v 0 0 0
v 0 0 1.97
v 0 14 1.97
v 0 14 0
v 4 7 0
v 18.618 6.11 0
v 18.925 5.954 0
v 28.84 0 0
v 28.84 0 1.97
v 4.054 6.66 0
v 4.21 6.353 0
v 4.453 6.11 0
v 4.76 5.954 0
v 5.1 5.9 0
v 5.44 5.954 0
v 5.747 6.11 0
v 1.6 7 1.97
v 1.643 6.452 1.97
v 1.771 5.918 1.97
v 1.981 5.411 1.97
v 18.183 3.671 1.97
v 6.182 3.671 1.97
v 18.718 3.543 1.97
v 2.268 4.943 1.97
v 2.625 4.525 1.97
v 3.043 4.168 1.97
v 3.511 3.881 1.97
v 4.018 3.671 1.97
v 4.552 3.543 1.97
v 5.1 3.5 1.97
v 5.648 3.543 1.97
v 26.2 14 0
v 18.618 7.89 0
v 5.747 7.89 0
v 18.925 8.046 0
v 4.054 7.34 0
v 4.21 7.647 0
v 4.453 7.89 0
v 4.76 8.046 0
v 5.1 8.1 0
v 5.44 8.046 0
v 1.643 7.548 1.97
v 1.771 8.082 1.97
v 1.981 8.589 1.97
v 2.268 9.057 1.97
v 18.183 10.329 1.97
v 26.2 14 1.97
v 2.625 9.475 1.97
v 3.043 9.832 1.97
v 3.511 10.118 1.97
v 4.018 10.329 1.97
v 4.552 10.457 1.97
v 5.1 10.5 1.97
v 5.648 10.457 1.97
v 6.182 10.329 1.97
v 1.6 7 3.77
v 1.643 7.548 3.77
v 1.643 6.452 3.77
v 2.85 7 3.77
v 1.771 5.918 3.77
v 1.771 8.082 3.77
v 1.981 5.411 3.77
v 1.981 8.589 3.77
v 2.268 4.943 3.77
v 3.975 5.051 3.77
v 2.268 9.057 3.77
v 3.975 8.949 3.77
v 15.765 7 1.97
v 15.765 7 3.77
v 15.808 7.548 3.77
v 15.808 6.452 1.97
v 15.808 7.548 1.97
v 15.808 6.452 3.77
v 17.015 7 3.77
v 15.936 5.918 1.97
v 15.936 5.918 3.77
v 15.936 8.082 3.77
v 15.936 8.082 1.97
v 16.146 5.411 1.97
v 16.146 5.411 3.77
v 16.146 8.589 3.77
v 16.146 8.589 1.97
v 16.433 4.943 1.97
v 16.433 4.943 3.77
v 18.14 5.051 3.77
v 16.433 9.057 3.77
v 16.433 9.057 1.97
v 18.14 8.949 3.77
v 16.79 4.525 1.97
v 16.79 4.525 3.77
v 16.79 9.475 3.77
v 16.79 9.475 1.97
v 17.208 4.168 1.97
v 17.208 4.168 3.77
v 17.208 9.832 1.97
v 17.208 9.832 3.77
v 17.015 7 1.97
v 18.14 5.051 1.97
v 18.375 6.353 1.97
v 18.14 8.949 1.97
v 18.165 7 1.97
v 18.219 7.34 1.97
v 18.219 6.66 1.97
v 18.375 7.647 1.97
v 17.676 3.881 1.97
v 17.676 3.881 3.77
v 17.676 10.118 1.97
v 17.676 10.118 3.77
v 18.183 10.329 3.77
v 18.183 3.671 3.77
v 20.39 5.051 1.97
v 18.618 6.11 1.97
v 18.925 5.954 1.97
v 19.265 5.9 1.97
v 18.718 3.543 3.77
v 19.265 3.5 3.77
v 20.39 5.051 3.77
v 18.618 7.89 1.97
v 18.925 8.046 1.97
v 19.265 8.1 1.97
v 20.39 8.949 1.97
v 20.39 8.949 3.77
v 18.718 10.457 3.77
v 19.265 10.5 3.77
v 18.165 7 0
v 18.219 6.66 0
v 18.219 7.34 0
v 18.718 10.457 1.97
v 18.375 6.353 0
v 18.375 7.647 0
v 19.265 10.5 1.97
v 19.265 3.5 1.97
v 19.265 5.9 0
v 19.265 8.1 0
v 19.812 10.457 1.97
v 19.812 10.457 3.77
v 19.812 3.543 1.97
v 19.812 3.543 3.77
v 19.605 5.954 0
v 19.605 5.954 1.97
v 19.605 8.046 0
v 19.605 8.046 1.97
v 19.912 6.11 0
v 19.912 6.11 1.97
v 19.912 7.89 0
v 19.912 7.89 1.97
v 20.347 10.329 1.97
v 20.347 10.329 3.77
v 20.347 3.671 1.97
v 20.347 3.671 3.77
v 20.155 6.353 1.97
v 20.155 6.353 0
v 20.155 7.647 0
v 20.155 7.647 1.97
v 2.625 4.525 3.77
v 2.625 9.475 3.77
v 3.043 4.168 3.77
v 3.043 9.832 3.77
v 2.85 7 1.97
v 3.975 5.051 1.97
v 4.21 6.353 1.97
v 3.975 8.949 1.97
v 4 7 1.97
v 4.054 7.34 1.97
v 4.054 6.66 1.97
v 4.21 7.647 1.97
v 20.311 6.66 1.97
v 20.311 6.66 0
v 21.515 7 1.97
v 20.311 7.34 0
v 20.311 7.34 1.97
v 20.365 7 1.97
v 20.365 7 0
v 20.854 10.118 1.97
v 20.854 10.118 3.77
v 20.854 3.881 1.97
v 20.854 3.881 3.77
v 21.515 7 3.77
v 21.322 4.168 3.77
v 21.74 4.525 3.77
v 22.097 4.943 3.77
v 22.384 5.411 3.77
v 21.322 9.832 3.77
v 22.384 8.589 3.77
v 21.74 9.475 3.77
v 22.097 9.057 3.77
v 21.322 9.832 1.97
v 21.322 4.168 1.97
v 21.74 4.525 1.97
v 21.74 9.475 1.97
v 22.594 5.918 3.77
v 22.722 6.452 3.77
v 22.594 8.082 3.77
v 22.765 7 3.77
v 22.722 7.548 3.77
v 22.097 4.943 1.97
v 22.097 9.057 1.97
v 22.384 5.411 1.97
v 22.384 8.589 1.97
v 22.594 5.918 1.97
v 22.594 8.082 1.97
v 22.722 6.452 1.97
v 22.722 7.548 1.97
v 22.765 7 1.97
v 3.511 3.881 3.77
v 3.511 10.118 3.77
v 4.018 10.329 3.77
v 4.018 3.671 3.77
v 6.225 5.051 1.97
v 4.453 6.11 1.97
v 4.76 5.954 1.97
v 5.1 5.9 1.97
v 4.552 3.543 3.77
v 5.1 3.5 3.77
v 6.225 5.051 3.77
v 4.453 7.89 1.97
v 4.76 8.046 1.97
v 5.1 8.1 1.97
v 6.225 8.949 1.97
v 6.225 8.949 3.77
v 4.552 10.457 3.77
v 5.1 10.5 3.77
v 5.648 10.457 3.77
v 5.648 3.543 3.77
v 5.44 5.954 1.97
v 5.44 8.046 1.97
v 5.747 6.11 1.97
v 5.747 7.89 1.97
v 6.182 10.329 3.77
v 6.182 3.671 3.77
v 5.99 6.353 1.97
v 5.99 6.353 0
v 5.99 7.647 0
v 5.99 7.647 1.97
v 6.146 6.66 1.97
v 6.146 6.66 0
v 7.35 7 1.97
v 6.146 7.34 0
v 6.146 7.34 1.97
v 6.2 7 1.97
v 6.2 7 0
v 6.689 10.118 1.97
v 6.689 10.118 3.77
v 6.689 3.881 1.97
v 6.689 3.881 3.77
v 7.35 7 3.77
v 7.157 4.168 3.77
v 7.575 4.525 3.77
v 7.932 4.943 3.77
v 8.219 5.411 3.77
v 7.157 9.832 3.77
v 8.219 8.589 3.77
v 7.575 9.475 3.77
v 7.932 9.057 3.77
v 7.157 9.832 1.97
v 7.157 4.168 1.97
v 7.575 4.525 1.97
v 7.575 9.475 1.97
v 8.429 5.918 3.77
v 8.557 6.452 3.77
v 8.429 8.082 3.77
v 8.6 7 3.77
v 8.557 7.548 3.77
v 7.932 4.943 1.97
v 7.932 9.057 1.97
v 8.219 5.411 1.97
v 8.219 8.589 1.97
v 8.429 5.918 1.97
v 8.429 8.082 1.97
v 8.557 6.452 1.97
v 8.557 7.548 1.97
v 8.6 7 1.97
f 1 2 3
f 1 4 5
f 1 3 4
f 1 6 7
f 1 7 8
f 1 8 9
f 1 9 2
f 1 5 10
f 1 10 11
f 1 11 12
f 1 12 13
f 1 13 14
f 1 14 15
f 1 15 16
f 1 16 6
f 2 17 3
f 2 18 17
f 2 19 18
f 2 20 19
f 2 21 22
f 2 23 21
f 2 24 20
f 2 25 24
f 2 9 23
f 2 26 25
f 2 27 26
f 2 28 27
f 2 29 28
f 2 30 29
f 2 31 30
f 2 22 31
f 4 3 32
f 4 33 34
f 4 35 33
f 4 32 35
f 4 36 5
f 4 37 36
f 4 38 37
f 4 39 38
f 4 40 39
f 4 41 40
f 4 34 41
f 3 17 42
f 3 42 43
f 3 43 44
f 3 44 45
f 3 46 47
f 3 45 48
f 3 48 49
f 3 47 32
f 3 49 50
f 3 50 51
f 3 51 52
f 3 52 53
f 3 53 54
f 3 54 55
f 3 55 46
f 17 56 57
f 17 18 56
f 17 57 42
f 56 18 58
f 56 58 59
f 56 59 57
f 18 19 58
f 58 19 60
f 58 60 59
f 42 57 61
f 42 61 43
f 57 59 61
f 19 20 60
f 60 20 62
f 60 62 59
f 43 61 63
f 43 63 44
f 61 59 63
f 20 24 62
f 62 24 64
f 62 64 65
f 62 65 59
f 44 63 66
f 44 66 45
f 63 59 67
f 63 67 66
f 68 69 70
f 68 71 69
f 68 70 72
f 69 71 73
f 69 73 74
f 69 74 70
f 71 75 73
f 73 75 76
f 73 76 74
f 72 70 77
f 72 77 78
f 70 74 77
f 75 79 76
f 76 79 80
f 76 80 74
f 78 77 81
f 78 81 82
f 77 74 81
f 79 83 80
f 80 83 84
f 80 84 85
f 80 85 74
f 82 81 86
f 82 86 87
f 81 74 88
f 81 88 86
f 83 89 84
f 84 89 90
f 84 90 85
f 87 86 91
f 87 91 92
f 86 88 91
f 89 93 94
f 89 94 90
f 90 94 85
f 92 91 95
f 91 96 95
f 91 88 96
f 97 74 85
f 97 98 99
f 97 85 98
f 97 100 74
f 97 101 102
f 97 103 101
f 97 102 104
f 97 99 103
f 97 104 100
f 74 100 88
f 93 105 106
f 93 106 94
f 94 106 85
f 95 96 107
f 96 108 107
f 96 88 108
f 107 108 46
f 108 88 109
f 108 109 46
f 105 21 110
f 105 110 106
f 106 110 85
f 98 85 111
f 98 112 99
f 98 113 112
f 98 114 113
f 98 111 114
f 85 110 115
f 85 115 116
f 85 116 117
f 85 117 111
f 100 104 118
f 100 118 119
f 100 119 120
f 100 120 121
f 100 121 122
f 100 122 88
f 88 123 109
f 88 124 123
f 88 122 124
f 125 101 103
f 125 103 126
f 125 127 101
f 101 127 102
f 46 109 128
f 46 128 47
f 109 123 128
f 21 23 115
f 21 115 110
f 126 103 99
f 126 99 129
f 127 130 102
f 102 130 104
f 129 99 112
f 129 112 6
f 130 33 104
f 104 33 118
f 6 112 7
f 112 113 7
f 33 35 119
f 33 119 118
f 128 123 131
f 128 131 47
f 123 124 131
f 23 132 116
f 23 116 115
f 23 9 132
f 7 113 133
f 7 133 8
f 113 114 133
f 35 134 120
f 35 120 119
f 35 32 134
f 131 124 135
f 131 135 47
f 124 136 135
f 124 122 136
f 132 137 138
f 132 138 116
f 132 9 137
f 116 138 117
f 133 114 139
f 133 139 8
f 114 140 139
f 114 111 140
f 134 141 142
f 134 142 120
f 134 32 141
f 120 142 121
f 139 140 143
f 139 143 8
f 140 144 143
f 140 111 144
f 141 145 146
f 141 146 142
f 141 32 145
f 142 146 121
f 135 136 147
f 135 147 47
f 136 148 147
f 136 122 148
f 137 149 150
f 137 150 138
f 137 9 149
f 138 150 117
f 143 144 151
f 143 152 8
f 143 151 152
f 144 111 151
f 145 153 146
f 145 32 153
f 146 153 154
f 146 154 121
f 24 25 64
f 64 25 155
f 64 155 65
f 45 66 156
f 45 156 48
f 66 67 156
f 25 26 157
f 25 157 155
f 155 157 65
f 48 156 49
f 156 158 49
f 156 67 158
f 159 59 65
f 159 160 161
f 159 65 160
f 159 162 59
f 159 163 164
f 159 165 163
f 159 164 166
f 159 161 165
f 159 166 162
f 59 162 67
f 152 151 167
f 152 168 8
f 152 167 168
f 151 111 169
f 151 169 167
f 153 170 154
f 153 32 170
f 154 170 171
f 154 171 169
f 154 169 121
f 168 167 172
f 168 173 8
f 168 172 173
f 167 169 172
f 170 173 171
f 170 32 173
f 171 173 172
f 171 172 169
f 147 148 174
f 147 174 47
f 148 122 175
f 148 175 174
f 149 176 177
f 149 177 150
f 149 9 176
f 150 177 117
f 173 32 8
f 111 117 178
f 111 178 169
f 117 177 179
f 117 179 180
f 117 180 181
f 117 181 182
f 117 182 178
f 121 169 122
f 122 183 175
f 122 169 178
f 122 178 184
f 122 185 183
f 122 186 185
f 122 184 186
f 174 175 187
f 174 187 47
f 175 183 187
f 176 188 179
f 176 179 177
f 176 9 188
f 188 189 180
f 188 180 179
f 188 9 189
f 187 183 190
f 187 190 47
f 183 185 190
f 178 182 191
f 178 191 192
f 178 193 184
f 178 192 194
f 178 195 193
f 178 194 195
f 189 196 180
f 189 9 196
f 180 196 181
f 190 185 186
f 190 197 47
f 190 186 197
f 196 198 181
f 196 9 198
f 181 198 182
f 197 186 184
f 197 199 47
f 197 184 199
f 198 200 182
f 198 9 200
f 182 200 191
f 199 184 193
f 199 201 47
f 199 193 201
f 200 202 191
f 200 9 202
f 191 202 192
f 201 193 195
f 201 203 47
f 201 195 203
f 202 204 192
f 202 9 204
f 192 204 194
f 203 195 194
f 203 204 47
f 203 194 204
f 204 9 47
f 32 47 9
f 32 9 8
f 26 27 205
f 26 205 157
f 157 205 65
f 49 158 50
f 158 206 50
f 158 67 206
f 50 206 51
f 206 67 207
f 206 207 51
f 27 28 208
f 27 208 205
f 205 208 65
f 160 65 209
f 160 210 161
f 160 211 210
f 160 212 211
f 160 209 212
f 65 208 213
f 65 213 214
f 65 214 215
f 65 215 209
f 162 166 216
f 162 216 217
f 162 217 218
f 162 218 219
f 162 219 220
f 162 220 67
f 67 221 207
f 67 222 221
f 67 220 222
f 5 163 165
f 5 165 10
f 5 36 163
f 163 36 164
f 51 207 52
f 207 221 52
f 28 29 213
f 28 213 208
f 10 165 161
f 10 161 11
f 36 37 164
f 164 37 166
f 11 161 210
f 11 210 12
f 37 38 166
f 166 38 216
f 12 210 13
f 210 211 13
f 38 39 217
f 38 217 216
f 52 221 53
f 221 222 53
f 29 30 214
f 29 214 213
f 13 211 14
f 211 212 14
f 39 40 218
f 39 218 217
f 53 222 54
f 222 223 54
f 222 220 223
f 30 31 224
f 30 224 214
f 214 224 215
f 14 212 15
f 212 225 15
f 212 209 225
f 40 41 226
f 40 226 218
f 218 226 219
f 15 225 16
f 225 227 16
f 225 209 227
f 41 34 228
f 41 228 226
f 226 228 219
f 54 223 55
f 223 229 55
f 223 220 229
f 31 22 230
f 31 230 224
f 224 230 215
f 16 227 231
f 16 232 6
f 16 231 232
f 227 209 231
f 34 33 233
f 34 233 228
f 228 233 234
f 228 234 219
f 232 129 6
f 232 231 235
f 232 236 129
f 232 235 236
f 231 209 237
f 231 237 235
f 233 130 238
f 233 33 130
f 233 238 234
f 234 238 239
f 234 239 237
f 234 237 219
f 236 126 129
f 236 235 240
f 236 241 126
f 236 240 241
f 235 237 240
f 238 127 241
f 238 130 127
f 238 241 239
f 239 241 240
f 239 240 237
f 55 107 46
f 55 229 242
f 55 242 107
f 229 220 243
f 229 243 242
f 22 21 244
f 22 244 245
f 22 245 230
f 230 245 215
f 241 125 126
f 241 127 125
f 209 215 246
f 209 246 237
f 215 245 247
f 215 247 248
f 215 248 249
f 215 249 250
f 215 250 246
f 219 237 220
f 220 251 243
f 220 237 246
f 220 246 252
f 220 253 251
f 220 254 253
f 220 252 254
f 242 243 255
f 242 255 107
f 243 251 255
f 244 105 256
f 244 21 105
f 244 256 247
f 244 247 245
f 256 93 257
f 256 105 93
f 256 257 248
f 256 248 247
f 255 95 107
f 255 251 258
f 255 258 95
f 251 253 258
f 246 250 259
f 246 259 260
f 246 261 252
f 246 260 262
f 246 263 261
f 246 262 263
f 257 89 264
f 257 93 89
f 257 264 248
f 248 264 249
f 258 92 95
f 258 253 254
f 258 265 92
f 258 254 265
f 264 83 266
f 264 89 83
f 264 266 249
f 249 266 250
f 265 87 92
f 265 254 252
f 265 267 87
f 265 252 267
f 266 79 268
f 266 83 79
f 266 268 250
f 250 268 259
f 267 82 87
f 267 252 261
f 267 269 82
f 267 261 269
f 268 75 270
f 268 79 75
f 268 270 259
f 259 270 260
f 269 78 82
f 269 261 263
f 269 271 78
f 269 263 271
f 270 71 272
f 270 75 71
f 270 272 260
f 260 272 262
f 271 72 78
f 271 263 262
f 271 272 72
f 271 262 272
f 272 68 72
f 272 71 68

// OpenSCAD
// file: ../parameters.scad
global_clearance = 0.5;


//Main tube diameter - hole [mm]
main_tube_outer_diameter = 25.4;
main_tube_inner_diameter = 23.05;

// Nastavení parametrů rotoru

gliding_aggle = 14;         // tenhle úhel by se zřejmě v budoucnu měl počítat z požadované klouzavosti.

rotor_blade_AOA = 1.5;      // nastavení úhlu náběhu rotorového listu
rotor_blade_length = 970;   // délka rotorového listu
rotor_blade_depth = 50;     // hloubka rotorového listu
rotor_height = 180;         // výška otočného kloubu rotoru nad hlavní trubkou vírníku (odhad)
rotor_blades_count = 2;
rotor_delta_angle = 12;


rotor_head_width =  21.4;    //Rozměr 1 v nákresu
pilon_wall_thickness = 4.2;  // Rozměr 2 v nákresu
horizontal_screw_distance = 14.5;   // Rozměr 4 v nákresu
vertical_screw_distance = 12;       // rozměr 5 v nkresu

rotorhead_wall_thickness = 1.5; // sila tistenych dilu


bearing_outer_diameter = 6;    // Rozměr B1 v nákresu s přídavkem na toleranci otvoru
bearing_thickness = 7;        // Rozměr B2 v nákresu
bearing_shaft_length = 19.5;    // Rozměr B3 v nákresu


// nastavení parametrů motoru

engine_angle = -8;
engine_diameter = 55;
engine_offset = 55;

engine_screws_radius = 15;
engine_holes_radius = (24 + 44)/4;
engine_shatf_hole_diameter = 13;

// screw length step - minimum difference in length between two types of screws
basic_screw_length = 5;

//Screw diameter and nut for M5 [mm]
M5_screw_diameter=5.5;
M5_head_height = 5;
M5_head_diameter = 13+0.5;
M5_nut_height = 4.5;
M5_nut_diameter = 9.4;
M5_nut_pocket = 8.4;

//Screw diameter and nut for M4 [mm]
M4_screw_diameter=4.5;
M4_screw_head_height = 4;
M4_nut_height = 3.2;
M4_nut_diameter = 8.4;
M4_nut_pocket = 7.5;

//Screw diameter and nut for M3 [mm]
M3_screw_diameter = 3.2;
M3_nut_height = 2.7;
M3_nut_diameter = 6.6;
M3_screw_head_height = 3;
M3_nut_pocket = 5.6;


//Screw diameter and nut for M2,5 [mm]
M2_5_screw_diameter = 2.7;
M2_5_nut_height = 2.3;
M2_5_nut_diameter = 6;
M2_5_nut_pocket = 5.1;

//Screw diameter and nut for M2 [mm]
M2_screw_diameter = 2.2;
M2_nut_height = 1.8;
M2_nut_diameter = 4.5;
M2_nut_pocket = 3.95;



//šroub servo
Servo_screw = 1.5;
Servo_nut_height = 1;
Servo_nut_diameter = 2.7;



//center_of_gravity_position = [main_pilon_position - tan(gliding_aggle)*rotor_height, 0, 0];


////podzvozek

radius_undercarriage = 25;
vzdalenost_x = tan(20) * 131;
vzdalenost_y = (131 - radius_undercarriage)/tan(79);
uhel_y = 90 - 20;
uhel_x = 90 - 79;

maximum_printable_size = 150;


////Pitotova trubice
Pitot_tube_diameter = 4.02 + 1;
Distance_hole_from_tube = 11.92;  //vzdálenost otvoru pro připevnění od samotné trubičky
// main file
include <../parameters.scad>;

module 111_1006() {
blade_screws_distance = (16.47+11.86)/2;
screw_diameter = M2_screw_diameter;
move_index = 4+screw_diameter/2;

points = [
	[0, 0, 0],
	[28.84, 0, 0],
	[26.2, 14, 0],
	[0, 14, 0],
	[0, 0, 1.97],
	[28.84, 0, 1.97],
	[26.2, 14, 1.97],
	[0, 14, 1.97]
];

faces = [
	[0, 1, 2, 3],
	[4, 5, 1, 0],
	[7, 6, 5, 4],
	[5, 6, 2, 1],
	[6, 7, 3, 2],
	[7, 4, 0, 3]
];

difference() {
	union() {
		polyhedron(points, faces);
		translate([move_index, 7, 1.97]) cylinder(d=M2_nut_diameter+2.5, h=M2_nut_height, $fn=40	);
		translate([move_index+blade_screws_distance, 7, 1.97]) cylinder(d=M2_nut_diameter+2.5, h=M2_nut_height, $fn=40);
	}
	translate([move_index, 7, 0]) cylinder(d=screw_diameter, h=2, $fn=20);
	translate([move_index+blade_screws_distance, 7, 0]) cylinder(d=screw_diameter, h=2, $fn=20);
	translate([move_index, 7, 1.97]) cylinder(d=M2_nut_diameter, h=M2_nut_height, $fn=6);
	translate([move_index+blade_screws_distance, 7, 1.97]) cylinder(d=M2_nut_diameter, h=M2_nut_height, $fn=6);
}
}

111_1006();
